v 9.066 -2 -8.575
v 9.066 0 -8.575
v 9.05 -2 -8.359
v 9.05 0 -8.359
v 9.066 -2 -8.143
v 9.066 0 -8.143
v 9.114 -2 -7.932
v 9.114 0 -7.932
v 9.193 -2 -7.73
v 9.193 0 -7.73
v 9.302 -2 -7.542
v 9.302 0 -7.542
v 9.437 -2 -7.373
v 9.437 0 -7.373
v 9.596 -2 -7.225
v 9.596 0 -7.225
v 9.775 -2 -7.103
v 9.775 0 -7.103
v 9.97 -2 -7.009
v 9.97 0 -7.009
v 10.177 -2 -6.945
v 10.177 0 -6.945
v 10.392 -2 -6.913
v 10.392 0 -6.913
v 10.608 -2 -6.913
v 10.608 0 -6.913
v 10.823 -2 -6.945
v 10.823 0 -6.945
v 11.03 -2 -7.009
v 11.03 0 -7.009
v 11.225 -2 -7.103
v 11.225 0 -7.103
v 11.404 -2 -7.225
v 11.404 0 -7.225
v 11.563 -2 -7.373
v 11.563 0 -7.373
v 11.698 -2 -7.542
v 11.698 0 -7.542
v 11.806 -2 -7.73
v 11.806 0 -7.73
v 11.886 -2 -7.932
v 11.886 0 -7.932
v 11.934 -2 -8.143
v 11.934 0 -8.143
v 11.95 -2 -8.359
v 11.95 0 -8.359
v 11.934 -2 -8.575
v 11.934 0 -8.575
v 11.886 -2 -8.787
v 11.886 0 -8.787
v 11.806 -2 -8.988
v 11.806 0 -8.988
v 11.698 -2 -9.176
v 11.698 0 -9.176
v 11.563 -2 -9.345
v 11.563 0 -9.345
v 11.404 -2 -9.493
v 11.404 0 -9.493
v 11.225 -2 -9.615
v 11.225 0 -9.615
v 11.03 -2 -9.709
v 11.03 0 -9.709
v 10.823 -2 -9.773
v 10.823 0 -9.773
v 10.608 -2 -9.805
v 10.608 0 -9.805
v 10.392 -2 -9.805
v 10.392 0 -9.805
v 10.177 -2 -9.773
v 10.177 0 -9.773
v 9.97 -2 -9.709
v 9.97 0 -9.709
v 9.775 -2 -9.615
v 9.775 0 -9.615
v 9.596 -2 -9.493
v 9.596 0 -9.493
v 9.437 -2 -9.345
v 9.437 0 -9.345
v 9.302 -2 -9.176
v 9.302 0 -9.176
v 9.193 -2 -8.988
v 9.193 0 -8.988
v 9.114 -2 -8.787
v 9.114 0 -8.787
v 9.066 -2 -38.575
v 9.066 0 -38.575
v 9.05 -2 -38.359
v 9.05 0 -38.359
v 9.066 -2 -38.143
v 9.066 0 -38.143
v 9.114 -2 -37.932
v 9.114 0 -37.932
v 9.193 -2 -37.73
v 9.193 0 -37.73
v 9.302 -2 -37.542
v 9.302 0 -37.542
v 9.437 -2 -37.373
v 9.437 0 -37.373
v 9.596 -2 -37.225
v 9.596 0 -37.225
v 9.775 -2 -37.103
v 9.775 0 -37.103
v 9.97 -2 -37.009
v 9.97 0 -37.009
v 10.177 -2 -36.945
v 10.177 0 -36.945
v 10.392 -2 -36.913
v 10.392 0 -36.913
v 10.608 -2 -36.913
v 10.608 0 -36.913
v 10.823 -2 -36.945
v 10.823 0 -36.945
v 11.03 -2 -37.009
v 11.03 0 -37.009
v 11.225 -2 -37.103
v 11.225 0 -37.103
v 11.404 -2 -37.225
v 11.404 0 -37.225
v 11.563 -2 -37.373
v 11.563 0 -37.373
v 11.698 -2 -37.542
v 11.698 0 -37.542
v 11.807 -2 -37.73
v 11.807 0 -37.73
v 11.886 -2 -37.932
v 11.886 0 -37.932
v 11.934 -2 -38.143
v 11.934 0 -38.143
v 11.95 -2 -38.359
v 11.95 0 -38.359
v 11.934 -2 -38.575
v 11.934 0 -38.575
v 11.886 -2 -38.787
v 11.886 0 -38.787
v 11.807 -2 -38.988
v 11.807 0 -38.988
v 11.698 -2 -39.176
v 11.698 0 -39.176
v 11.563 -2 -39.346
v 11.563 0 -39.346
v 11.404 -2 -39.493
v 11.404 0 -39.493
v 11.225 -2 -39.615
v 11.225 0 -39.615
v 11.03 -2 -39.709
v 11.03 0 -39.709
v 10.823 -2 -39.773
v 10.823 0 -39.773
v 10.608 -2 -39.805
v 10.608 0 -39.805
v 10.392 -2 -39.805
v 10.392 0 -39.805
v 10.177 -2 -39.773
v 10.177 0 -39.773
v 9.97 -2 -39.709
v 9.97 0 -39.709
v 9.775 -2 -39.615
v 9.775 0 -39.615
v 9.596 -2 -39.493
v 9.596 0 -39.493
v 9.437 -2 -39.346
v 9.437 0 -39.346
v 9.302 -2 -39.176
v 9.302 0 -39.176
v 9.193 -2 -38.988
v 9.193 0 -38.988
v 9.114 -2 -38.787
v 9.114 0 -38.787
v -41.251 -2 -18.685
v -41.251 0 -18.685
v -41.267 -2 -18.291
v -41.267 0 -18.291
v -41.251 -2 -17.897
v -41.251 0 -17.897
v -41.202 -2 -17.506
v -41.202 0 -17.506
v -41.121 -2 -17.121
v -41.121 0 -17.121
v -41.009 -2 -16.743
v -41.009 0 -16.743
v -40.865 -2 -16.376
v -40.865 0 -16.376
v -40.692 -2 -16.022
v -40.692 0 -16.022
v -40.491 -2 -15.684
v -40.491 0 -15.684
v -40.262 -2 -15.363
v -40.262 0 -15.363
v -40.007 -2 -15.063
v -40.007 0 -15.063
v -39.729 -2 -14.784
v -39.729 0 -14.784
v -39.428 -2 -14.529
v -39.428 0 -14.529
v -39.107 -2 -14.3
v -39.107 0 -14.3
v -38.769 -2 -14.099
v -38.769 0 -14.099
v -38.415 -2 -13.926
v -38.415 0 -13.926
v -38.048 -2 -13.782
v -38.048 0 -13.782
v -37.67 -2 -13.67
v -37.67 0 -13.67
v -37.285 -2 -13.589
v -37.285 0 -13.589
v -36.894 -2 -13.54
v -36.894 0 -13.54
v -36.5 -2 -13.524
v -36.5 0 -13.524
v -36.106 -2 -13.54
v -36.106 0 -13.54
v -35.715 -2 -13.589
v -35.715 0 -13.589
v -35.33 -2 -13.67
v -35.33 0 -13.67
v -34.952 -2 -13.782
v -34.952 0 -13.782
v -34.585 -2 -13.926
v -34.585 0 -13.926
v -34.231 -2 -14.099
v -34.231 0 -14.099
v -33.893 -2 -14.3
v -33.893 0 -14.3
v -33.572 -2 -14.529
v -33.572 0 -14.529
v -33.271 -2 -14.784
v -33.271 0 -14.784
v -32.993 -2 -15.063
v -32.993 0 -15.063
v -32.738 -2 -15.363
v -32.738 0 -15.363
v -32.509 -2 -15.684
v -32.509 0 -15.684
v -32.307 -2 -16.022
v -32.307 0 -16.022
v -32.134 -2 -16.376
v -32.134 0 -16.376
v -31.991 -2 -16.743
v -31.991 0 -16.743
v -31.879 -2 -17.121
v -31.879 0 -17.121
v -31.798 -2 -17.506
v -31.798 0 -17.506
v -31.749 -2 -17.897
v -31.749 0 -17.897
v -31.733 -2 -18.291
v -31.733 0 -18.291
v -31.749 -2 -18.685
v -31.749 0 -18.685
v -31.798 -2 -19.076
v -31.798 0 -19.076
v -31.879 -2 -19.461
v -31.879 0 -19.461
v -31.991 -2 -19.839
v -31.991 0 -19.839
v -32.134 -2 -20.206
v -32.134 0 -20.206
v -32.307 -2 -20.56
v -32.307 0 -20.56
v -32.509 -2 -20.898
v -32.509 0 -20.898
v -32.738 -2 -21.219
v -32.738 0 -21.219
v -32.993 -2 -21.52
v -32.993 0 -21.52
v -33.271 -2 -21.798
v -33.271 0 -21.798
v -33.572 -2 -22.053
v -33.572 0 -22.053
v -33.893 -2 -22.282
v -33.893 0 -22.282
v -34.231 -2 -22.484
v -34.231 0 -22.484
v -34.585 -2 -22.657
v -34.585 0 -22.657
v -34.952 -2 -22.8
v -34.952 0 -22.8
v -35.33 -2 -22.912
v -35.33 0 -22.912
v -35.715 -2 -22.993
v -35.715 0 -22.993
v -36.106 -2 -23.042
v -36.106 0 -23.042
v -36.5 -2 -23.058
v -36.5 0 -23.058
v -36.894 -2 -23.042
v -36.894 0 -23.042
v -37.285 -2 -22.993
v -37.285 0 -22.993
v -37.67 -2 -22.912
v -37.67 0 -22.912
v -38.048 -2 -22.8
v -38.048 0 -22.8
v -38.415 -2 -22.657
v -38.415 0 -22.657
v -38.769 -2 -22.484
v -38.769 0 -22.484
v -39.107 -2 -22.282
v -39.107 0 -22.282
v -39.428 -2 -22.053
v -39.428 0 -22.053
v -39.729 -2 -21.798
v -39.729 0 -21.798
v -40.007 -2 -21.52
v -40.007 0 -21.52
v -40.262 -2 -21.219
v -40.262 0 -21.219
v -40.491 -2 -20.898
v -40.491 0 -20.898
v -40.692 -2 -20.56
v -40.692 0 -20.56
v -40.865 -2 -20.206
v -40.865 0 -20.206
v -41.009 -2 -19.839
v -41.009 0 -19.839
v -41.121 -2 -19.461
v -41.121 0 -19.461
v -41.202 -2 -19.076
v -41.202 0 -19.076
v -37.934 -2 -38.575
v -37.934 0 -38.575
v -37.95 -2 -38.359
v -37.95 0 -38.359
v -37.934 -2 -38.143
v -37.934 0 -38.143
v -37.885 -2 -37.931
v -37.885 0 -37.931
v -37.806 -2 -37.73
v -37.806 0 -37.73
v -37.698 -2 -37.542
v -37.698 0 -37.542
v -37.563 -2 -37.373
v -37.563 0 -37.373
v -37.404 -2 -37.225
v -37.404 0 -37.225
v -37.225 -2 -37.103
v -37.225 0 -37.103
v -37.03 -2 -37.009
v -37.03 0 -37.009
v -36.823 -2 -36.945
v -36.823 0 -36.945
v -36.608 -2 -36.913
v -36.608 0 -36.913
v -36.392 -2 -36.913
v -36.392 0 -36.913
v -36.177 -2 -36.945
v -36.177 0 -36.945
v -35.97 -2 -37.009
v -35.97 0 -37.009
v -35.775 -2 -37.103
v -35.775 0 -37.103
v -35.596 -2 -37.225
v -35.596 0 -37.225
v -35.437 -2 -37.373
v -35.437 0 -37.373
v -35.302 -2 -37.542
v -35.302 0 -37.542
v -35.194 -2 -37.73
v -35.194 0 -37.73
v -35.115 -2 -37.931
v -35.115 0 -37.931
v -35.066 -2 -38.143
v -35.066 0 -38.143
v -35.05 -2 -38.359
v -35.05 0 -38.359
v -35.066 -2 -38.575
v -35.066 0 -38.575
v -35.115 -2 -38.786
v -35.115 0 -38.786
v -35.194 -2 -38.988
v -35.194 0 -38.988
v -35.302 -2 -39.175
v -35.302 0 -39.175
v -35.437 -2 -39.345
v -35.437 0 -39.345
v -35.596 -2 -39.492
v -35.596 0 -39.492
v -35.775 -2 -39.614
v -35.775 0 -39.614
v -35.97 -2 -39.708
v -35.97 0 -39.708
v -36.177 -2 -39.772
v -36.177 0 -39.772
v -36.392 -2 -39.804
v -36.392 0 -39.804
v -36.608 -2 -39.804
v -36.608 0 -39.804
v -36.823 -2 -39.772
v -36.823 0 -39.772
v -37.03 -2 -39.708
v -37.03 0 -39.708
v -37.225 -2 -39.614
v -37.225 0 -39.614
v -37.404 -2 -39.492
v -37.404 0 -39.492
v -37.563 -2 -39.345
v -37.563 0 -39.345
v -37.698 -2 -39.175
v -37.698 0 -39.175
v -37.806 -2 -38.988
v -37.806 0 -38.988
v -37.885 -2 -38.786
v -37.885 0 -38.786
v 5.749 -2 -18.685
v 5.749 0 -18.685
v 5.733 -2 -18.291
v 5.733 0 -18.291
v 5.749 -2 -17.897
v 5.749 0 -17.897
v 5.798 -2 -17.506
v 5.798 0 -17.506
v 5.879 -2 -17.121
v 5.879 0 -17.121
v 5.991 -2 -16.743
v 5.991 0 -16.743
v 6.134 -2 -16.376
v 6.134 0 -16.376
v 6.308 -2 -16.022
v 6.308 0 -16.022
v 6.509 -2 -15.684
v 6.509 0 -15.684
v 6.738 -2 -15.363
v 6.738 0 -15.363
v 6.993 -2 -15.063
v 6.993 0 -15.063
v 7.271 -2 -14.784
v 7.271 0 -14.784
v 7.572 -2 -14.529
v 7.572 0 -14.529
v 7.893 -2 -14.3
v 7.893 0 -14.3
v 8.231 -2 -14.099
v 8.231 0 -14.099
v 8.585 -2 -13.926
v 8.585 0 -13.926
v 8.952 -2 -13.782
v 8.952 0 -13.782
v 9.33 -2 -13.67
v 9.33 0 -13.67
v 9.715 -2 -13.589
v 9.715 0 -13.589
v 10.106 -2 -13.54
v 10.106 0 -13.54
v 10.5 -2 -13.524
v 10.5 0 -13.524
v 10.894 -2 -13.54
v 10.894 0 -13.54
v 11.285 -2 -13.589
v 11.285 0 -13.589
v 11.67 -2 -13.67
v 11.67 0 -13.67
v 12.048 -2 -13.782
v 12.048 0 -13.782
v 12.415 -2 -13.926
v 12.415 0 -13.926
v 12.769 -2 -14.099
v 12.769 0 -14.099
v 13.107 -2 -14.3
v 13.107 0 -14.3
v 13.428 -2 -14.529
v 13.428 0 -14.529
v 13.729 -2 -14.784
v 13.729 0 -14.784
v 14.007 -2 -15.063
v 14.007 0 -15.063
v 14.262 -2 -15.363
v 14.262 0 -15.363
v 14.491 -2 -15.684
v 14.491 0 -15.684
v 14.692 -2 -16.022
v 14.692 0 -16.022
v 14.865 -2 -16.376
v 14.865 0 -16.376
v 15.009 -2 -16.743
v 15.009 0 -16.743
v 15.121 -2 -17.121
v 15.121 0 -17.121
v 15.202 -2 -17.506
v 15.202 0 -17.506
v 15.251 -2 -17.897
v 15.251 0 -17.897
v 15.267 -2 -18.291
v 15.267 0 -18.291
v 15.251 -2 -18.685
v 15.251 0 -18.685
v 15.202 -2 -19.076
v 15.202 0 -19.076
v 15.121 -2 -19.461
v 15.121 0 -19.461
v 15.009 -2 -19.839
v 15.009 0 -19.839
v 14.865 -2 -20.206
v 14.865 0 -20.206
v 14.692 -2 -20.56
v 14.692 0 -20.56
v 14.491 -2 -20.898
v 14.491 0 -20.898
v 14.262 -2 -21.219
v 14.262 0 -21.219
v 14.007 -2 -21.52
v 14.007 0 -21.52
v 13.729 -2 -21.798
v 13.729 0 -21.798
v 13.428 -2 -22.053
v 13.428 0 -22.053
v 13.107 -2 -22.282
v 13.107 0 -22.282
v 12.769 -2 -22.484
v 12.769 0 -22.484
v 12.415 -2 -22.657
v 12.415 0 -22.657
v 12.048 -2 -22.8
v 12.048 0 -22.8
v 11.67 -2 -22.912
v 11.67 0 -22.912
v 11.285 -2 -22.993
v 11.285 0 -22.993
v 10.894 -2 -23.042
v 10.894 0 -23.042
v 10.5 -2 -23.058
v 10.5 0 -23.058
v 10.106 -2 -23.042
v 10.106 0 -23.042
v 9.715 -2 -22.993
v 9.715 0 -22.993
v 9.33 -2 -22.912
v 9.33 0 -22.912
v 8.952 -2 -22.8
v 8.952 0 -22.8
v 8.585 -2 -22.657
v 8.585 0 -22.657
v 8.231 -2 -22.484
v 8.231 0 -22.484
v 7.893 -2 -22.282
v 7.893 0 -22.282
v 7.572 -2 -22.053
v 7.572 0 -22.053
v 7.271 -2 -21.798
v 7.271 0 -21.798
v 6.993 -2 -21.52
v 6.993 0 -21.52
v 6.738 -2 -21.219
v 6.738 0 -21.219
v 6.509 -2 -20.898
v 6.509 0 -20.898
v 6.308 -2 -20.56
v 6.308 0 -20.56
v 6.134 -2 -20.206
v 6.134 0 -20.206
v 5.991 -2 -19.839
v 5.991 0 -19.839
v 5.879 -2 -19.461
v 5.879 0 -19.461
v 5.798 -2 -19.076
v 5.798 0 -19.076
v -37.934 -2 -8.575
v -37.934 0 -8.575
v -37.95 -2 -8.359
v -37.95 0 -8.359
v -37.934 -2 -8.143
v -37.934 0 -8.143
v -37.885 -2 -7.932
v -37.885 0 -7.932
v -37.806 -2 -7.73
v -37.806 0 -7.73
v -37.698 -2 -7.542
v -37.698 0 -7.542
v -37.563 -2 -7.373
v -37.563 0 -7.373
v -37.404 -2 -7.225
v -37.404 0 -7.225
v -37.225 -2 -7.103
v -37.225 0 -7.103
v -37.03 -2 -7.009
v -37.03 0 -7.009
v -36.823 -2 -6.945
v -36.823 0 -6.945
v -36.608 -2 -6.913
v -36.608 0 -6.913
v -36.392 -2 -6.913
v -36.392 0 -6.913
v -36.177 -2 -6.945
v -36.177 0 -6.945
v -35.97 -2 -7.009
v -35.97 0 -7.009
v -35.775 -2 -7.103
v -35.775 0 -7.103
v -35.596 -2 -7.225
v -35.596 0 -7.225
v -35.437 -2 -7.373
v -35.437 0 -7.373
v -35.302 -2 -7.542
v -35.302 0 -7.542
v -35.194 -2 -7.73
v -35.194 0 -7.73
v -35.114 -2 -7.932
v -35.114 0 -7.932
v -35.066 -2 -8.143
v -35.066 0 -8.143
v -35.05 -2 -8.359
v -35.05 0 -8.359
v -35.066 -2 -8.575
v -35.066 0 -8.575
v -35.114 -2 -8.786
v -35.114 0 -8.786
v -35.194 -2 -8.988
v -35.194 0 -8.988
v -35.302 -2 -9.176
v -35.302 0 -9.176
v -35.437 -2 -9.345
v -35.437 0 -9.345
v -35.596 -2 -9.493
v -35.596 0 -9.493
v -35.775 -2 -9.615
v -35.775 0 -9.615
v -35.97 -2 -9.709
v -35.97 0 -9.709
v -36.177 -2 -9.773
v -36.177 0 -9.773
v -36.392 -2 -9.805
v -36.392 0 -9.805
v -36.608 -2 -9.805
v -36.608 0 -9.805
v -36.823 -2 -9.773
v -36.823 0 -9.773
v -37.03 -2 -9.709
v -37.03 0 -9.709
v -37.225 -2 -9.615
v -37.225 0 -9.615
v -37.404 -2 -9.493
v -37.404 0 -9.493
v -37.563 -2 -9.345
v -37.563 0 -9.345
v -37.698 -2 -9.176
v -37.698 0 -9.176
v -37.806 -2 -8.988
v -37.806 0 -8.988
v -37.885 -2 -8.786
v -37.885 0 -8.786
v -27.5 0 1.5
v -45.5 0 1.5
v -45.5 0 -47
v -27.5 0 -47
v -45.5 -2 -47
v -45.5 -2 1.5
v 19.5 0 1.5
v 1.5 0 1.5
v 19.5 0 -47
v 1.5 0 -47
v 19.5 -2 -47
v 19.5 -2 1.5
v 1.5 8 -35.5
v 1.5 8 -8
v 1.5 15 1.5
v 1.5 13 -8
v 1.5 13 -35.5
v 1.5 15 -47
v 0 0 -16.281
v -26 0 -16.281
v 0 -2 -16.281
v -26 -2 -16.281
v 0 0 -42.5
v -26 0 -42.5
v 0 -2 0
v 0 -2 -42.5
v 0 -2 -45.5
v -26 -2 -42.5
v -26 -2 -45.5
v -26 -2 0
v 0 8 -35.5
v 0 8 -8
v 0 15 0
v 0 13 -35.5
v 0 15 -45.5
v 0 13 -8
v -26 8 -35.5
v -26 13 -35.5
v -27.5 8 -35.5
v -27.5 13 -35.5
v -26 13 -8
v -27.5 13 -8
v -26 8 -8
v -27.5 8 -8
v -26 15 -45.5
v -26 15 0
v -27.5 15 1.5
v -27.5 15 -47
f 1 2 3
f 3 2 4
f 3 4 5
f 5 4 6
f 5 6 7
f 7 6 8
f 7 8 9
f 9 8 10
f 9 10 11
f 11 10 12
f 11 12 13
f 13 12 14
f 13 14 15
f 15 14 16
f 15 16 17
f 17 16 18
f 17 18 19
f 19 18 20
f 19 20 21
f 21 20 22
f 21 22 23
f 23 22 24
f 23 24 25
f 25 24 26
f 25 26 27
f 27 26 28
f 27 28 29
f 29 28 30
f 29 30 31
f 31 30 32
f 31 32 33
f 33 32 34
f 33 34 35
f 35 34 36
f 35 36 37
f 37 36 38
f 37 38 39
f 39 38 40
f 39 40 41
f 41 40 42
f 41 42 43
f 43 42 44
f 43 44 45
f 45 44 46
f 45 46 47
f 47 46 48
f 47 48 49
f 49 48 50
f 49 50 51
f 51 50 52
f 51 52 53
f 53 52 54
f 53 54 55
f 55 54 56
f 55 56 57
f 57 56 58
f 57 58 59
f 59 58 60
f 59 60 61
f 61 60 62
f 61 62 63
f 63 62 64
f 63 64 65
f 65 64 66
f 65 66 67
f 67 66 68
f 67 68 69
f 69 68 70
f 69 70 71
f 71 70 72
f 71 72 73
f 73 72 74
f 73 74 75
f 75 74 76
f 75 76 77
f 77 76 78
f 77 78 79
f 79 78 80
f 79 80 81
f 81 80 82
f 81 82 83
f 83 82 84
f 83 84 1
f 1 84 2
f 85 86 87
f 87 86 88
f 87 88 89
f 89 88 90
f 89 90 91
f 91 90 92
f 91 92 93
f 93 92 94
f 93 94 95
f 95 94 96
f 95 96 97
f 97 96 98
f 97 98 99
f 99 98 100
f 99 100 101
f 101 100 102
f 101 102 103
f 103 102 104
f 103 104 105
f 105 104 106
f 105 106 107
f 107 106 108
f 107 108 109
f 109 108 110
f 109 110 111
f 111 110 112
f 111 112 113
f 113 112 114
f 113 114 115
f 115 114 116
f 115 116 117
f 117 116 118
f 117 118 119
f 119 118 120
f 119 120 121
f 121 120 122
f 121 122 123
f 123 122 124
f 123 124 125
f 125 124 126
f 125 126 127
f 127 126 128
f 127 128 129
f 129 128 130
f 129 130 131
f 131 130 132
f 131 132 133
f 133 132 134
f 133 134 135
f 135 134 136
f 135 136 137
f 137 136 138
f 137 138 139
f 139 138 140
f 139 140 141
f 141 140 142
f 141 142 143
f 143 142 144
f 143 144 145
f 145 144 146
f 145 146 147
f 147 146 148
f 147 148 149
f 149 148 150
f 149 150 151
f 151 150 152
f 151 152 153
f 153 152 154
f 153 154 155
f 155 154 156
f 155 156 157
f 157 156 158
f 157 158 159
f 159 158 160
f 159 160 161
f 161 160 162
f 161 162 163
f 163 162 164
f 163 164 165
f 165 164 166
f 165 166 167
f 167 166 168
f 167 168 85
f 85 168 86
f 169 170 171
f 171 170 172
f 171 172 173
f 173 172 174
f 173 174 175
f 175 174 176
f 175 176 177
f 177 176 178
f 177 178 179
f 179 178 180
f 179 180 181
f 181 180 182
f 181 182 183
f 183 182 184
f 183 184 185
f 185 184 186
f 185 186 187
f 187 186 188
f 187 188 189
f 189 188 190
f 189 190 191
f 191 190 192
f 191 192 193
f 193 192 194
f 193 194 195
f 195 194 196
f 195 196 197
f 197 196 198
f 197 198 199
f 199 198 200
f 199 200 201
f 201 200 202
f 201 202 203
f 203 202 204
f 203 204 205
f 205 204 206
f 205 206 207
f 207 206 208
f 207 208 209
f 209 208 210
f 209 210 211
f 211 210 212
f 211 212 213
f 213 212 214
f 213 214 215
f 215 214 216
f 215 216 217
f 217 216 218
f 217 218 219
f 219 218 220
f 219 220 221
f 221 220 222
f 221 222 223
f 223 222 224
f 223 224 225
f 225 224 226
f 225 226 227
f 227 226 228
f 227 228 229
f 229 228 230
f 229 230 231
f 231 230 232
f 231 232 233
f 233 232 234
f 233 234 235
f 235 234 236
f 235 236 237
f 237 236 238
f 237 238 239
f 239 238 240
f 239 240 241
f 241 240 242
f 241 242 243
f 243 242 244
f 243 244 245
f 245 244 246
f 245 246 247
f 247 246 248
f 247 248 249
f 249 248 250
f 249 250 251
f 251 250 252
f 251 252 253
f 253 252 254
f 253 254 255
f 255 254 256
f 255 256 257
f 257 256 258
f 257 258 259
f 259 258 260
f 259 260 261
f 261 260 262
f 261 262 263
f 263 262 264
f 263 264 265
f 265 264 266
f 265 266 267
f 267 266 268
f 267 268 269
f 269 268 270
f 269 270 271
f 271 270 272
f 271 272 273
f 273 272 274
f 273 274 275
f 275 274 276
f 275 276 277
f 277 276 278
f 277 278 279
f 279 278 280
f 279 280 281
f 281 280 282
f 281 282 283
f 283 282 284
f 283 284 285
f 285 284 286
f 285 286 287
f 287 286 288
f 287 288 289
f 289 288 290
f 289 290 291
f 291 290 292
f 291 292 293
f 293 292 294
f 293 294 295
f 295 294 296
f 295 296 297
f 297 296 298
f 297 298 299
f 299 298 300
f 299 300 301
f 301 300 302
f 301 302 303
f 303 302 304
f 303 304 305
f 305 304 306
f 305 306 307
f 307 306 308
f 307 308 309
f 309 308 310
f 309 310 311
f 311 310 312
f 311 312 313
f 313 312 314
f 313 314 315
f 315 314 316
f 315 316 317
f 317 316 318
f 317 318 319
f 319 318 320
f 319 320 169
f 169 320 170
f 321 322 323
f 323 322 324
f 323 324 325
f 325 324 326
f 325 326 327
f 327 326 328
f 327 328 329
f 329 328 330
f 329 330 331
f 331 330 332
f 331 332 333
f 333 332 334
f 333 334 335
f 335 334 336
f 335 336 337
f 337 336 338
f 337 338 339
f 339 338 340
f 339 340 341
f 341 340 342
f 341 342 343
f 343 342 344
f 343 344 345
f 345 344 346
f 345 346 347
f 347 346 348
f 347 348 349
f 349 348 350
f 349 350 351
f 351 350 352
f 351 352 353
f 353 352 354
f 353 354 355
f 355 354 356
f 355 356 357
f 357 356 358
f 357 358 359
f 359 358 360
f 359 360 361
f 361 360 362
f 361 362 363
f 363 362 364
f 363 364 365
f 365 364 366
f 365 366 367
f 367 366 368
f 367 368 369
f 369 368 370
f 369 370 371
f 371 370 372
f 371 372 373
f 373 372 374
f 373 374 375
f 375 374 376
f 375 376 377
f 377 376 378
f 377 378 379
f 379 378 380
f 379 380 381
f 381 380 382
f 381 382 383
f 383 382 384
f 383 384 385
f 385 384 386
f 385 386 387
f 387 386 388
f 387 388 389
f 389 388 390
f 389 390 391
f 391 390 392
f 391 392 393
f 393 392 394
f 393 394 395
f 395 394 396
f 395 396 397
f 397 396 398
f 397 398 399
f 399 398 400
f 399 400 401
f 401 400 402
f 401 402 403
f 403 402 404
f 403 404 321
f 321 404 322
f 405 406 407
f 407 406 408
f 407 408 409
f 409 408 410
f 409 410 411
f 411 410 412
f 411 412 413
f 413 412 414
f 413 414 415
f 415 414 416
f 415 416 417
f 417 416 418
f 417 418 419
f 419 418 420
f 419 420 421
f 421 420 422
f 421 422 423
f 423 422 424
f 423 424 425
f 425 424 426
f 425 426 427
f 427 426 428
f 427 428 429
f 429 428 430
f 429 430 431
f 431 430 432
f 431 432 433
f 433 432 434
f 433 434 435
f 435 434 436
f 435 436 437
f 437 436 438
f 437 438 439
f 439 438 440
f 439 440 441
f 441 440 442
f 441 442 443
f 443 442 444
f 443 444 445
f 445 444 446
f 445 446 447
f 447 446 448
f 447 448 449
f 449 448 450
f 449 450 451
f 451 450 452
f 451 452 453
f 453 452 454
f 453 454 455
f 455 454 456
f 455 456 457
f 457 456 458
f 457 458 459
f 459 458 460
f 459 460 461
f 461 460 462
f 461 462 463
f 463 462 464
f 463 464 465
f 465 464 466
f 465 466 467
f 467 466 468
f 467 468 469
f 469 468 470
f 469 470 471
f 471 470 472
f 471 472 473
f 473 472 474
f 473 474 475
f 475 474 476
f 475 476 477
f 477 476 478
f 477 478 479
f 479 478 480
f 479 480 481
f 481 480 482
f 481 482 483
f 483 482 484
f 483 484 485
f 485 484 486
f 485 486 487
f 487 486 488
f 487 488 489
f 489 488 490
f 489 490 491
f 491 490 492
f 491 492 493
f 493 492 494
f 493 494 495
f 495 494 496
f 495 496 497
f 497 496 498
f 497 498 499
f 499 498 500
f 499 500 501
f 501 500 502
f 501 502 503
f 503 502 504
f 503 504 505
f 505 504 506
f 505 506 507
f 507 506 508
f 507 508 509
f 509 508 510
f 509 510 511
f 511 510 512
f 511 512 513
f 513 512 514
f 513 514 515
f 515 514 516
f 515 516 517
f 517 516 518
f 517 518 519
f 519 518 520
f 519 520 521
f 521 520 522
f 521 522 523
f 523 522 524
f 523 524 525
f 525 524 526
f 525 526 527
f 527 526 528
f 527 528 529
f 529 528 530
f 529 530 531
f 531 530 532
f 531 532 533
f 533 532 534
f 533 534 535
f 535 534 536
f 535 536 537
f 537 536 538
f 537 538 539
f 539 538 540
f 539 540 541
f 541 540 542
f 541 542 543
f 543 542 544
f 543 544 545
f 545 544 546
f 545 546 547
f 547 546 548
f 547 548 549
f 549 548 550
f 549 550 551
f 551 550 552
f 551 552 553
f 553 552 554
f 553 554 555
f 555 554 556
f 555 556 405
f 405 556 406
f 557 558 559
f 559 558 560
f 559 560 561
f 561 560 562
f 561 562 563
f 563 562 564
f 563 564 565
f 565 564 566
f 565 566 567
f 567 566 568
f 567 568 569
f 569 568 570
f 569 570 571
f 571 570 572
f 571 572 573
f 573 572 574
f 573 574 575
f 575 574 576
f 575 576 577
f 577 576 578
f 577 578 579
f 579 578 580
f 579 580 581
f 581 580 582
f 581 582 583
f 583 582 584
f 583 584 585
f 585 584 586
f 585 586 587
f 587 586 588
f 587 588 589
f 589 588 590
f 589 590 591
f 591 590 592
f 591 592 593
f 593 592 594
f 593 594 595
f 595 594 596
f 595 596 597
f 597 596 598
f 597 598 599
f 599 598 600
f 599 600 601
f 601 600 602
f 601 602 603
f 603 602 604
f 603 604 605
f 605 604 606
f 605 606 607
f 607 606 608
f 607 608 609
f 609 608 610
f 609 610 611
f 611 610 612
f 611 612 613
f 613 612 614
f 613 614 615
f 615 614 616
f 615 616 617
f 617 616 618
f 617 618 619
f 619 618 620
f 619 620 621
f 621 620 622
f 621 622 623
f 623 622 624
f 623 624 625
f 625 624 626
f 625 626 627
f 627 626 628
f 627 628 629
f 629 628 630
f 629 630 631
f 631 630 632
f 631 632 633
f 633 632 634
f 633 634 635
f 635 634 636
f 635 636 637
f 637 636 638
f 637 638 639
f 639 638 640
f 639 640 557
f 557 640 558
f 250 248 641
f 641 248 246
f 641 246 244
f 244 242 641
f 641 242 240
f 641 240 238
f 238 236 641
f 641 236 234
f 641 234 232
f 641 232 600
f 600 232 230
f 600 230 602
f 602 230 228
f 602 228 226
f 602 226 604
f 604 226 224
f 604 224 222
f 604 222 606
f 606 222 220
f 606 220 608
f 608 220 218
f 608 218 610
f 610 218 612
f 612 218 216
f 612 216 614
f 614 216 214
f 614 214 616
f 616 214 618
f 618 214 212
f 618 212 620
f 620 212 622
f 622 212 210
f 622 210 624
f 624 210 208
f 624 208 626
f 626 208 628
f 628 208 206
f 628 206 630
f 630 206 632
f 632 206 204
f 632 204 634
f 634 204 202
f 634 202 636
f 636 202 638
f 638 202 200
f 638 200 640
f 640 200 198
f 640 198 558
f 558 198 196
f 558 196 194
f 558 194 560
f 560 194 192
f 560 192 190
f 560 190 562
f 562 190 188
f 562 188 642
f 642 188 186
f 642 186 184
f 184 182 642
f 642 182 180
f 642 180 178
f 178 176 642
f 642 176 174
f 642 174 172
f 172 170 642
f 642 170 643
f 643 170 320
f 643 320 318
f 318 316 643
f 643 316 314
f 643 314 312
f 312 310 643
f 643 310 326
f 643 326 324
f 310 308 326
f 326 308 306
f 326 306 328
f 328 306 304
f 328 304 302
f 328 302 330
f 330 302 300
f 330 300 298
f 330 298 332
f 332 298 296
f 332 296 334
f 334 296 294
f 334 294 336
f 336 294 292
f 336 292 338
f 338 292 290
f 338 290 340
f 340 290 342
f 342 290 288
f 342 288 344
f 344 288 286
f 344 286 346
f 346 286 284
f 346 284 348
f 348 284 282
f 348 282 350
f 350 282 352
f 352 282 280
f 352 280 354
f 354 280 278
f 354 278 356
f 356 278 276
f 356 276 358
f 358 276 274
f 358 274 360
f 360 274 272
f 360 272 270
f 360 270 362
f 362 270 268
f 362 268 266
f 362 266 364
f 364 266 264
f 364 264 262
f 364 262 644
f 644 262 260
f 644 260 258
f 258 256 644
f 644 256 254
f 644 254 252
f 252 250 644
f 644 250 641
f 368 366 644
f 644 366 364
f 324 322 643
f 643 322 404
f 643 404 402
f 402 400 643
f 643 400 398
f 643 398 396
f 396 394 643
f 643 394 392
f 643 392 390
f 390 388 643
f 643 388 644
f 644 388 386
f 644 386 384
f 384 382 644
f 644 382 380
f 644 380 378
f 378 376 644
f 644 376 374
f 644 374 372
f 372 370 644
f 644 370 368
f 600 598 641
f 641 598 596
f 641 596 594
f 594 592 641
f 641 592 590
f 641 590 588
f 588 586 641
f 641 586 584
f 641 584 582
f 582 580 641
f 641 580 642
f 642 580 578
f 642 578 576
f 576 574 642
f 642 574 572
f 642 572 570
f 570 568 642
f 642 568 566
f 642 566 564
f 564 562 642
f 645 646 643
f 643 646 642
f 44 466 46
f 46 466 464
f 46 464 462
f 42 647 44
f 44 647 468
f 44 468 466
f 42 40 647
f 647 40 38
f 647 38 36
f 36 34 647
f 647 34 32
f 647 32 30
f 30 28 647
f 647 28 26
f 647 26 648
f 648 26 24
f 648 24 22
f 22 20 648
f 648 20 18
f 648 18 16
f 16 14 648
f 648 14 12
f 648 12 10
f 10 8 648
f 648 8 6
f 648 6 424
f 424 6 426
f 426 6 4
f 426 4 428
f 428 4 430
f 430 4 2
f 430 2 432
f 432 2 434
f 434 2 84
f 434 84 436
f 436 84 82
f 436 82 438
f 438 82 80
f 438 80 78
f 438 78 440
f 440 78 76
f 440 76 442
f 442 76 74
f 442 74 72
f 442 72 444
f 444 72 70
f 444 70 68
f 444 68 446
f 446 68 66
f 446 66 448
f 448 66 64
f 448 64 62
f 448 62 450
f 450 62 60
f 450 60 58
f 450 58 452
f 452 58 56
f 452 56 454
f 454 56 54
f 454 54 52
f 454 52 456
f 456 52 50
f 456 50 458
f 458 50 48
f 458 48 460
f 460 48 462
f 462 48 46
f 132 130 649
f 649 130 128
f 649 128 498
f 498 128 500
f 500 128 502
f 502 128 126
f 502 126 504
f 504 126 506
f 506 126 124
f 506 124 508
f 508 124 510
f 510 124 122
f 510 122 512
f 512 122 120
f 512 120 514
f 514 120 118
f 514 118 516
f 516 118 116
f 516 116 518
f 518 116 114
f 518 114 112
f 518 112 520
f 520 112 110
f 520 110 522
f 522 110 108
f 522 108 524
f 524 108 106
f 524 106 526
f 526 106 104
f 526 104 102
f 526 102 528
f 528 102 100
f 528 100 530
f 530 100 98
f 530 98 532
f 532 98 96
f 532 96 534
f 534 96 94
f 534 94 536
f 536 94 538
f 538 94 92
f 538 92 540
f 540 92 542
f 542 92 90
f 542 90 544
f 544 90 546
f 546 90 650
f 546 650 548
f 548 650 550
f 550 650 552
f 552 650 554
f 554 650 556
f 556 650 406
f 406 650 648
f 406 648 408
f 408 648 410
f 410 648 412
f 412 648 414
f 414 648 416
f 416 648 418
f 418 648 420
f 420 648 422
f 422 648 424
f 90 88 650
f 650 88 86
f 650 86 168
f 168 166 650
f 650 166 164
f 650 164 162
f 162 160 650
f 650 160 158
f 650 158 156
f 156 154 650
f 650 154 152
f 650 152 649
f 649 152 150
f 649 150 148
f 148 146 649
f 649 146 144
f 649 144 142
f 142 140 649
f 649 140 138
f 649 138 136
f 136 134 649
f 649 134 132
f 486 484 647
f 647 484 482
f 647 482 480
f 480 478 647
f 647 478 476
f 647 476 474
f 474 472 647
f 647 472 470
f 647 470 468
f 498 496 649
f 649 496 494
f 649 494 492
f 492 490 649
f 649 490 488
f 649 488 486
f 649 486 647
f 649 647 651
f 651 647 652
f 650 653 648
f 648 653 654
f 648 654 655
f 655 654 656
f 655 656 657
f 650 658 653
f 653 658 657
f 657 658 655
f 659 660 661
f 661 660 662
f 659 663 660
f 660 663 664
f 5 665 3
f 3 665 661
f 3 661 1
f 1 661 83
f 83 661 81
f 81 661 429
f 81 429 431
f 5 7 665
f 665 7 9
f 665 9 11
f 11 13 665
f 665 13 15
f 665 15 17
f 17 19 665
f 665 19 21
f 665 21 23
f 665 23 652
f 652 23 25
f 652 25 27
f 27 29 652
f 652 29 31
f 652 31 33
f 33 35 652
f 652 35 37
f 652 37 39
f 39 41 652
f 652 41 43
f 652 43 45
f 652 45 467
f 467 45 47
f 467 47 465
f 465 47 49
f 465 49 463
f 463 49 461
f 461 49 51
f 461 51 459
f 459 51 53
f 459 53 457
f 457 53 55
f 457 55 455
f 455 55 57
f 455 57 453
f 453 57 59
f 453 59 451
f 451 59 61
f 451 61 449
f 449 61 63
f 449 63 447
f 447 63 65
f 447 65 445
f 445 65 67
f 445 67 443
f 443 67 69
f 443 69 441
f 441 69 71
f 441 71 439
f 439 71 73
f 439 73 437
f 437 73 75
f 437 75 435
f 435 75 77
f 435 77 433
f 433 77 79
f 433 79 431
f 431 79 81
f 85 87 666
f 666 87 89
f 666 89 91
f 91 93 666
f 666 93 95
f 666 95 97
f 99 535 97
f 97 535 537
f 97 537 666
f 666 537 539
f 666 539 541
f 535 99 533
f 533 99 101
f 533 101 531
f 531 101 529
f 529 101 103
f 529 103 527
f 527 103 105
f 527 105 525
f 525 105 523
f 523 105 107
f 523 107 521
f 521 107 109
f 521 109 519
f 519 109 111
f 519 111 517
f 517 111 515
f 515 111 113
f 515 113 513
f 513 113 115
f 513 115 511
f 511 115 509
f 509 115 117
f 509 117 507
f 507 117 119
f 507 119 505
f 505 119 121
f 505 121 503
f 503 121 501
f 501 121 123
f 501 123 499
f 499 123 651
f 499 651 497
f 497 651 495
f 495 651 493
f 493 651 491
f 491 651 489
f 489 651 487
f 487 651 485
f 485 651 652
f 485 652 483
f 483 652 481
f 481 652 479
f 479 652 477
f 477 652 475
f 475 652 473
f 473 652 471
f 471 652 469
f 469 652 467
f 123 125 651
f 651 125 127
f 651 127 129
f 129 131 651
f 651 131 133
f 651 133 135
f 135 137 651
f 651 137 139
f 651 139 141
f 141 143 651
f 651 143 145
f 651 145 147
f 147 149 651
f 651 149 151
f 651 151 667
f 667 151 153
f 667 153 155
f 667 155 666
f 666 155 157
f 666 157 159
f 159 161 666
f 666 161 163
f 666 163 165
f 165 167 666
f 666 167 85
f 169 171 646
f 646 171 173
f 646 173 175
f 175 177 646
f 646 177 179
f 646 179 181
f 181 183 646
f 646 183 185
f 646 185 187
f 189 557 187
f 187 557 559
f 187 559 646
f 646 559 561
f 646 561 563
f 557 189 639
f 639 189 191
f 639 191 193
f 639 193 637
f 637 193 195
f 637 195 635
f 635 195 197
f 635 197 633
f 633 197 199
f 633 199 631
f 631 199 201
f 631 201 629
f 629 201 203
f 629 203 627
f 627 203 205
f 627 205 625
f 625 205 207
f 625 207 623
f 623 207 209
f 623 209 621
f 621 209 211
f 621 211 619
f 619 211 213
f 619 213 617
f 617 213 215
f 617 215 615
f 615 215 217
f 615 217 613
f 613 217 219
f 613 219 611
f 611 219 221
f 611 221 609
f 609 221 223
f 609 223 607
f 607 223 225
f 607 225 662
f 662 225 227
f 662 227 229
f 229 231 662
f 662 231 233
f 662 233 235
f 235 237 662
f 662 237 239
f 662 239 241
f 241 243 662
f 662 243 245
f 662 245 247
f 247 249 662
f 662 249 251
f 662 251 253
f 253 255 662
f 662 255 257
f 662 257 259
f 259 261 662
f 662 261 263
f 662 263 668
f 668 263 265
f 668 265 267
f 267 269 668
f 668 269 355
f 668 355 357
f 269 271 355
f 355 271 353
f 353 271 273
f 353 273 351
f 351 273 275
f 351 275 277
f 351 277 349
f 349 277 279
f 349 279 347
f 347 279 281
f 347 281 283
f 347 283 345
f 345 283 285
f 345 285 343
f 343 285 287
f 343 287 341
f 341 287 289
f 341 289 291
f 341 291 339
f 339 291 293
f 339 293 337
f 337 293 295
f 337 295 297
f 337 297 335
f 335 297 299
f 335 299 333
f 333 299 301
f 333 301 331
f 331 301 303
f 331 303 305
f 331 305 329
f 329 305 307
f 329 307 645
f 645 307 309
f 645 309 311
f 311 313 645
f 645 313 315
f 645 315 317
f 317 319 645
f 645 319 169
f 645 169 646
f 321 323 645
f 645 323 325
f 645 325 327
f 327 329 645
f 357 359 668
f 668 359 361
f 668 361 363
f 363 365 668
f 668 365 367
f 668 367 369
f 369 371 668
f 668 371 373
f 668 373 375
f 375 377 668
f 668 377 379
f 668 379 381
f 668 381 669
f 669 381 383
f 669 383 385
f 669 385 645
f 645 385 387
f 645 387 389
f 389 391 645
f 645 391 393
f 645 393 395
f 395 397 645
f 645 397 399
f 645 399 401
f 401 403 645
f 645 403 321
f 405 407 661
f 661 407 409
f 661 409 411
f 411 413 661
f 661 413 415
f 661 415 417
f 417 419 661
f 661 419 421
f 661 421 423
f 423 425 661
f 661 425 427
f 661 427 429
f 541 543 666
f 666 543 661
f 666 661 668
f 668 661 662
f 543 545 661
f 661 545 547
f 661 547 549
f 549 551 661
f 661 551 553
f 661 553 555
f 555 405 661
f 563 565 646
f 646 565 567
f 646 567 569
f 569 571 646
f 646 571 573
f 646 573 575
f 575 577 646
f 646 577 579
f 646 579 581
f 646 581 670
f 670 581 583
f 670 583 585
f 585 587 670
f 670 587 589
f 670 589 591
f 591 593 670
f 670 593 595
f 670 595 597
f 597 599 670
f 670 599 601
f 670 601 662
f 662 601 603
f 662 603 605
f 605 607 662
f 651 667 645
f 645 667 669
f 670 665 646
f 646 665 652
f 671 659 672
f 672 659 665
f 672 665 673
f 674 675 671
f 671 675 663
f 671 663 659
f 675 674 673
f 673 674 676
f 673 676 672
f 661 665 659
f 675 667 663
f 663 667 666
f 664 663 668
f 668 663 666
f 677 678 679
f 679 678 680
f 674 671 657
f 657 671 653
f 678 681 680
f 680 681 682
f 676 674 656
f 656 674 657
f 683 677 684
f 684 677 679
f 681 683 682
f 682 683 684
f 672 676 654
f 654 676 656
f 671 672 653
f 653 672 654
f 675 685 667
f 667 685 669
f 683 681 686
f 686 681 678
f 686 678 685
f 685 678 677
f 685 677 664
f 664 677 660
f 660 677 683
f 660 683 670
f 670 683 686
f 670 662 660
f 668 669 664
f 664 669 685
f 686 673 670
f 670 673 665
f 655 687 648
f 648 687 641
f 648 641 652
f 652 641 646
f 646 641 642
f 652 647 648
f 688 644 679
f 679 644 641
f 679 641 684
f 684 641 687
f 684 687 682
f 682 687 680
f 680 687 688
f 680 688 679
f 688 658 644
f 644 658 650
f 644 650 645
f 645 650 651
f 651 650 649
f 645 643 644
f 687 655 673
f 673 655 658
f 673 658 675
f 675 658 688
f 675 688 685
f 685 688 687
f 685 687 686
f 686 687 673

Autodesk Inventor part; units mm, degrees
ref_plane "YZ Plane" through (0, 0, 0) normal (1, 0, 0) x (0, 1, 0)
ref_plane "XZ Plane" through (0, 0, 0) normal (0, 1, 0) x (-1, 0, 0)
sketch "Sketch1" plane through (0, 0, 0) normal (0, 1, 0) x (-1, 0, 0)
  line L0 (0, 0) -> (26, 0)
  line L1 (26, 0) -> (26, -45.5)
  line L2 (26, -45.5) -> (0, -45.5)
  line L3 (0, -45.5) -> (0, 0)
  line L4 (-1.5, 0) -> (-1.5, -45.5)
  line L5 (-1.5, -45.5) -> (-1.5, -47)
  line L6 (-1.5, -47) -> (26, -47)
  line L7 (26, -47) -> (27.5, -47)
  line L8 (27.5, -47) -> (27.5, 0)
  line L9 (27.5, 0) -> (27.5, 1.5)
  line L10 (27.5, 1.5) -> (-1.5, 1.5)
  line L11 (-1.5, 1.5) -> (-1.5, 0)
  dimension "d0" = 26
  dimension "d1" = 45.5
  dimension "d3" = 1.5
  dimension "d4" = 1.5
  dimension "d5" = 1.5
extrude "Extrusion1" add sketch "Sketch1" along normal blind 15
sketch "Sketch2" plane through (1.5, 0, 1.5) normal (1, 0, 0) x (0, 0, -1)
  line L0 (9.5, 13) -> (37, 13)
  line L1 (37, 13) -> (37, 8)
  line L2 (9.5, 13) -> (9.5, 8)
  line L3 (37, 8) -> (9.5, 8)
  point P0 (1.5, 0)
  point P1 (48.5, 0)
extrude "Extrusion2" cut sketch "Sketch2" against normal up to surface (29 mm away)
sketch "Sketch3" plane through (0, 0, 0) normal (0, -1, 0) x (1, 0, 0)
  line L0 (1.5, 1.5) -> (1.5, -47) projected
  line L1 (-27.5, 1.5) -> (1.5, 1.5) projected
  line L2 (-27.5, -47) -> (-27.5, 1.5) projected
  line L3 (1.5, -47) -> (-27.5, -47) projected
  line L4 (0, 0) -> (-26, 0) projected
  line L5 (0, -45.5) -> (0, 0) projected
  line L6 (-26, -45.5) -> (0, -45.5) projected
  line L7 (-26, 0) -> (-26, -45.5) projected
  line L8 (0, 0) -> (-26, 0) projected
  line L9 (-26, 0) -> (-26, -3)
  line L10 (-26, 0) -> (-26, -45.5) projected
  line L11 (-26, -3) -> (0, -3)
  line L12 (0, -45.5) -> (0, 0) projected
  line L13 (-26, -45.5) -> (-26, -42.5)
  line L14 (-26, -42.5) -> (0, -42.5)
  line L15 (0, -42.5) -> (-26, -42.5)
  line L16 (-26, -42.5) -> (-26, -3)
  line L17 (-26, -3) -> (0, -3)
  line L18 (0, -3) -> (0, -42.5)
  dimension "d15" = 3
  dimension "d16" = 3
extrude "Extrusion3" add sketch "Sketch3" along normal blind 2 contours L0 L3 L2 L1 | L5 L14 L7 L11
sketch "Sketch5" plane through (0, -2, 0) normal (0, -1, 0) x (1, 0, 0)
  line L0 (0, -3) -> (-26, -3) projected
  line L1 (0, -35.5) -> (0, -8) projected
  line L2 (-26, -3) -> (0, -3)
  line L3 (0, -3) -> (0, -16.2813)
  line L4 (0, -16.2813) -> (-26, -16.2813)
  line L5 (-26, -16.2813) -> (-26, -3)
  point P0 (0, 0)
  point P1 (0, -8)
ref_plane "Work Plane1" through (-23.6, 15, -43.3) normal (0, 1, 0) x (0, 0, 1)
extrude "Extrusion4" cut sketch "Sketch5" against normal up to surface (17 mm away)
sketch "Sketch6" plane through (1.5, 15, 1.5) normal (1, 0, 0) x (0, 0, -1)
  line L0 (0, -17) -> (48.5, -17) projected
  line L1 (0, -17) -> (0, -15)
  line L2 (0, 0) -> (0, -17) projected
  line L3 (0, -15) -> (48.5, -15)
  line L4 (48.5, -17) -> (48.5, 0) projected
  line L5 (48.5, -17) -> (48.5, -15)
  line L6 (48.5, -17) -> (0, -17)
  point P0 (1.5, -15)
  dimension "d21" = 2
extrude "Extrusion5" add sketch "Sketch6" along normal blind 18
sketch "Sketch7" plane through (-27.5, 15, -47) normal (-1, 0, 0) x (0, 0, 1)
  line L0 (0, -15) -> (48.5, -15) projected
  line L1 (48.5, -15) -> (48.5, -17) projected
  line L2 (48.5, -17) -> (0, -17) projected
  line L3 (0, -17) -> (0, -15) projected
  point P0 (47, -15)
extrude "Extrusion6" add sketch "Sketch7" along normal blind 18
sketch "Sketch8" plane through (1.5, 0, 1.5) normal (0, 1, 0) x (1, 0, 0)
  circle A0 centre (9, 9.8591) radius 1.4501 projected
  circle A1 centre (9.0001, 39.8592) radius 1.4502 projected
  circle A2 centre (-38, 9.859) radius 1.4499 projected
  circle A3 centre (-38, 39.8587) radius 1.4497 projected
  line L0 (9, 9.8591) -> (9, 19.7911)
  circle A4 centre (9, 19.7911) radius 4.767
  line L1 (-38, 9.859) -> (-38, 19.7911)
  circle A5 centre (-38, 19.7911) radius 4.767
  point P0 (-1.5, 1.5)
  dimension "d26" = 9.932
  dimension "d27" = 9.534
extrude "Extrusion7" cut sketch "Sketch8" against normal up to surface (2 mm away)
properties part number "voltometer_socket"
